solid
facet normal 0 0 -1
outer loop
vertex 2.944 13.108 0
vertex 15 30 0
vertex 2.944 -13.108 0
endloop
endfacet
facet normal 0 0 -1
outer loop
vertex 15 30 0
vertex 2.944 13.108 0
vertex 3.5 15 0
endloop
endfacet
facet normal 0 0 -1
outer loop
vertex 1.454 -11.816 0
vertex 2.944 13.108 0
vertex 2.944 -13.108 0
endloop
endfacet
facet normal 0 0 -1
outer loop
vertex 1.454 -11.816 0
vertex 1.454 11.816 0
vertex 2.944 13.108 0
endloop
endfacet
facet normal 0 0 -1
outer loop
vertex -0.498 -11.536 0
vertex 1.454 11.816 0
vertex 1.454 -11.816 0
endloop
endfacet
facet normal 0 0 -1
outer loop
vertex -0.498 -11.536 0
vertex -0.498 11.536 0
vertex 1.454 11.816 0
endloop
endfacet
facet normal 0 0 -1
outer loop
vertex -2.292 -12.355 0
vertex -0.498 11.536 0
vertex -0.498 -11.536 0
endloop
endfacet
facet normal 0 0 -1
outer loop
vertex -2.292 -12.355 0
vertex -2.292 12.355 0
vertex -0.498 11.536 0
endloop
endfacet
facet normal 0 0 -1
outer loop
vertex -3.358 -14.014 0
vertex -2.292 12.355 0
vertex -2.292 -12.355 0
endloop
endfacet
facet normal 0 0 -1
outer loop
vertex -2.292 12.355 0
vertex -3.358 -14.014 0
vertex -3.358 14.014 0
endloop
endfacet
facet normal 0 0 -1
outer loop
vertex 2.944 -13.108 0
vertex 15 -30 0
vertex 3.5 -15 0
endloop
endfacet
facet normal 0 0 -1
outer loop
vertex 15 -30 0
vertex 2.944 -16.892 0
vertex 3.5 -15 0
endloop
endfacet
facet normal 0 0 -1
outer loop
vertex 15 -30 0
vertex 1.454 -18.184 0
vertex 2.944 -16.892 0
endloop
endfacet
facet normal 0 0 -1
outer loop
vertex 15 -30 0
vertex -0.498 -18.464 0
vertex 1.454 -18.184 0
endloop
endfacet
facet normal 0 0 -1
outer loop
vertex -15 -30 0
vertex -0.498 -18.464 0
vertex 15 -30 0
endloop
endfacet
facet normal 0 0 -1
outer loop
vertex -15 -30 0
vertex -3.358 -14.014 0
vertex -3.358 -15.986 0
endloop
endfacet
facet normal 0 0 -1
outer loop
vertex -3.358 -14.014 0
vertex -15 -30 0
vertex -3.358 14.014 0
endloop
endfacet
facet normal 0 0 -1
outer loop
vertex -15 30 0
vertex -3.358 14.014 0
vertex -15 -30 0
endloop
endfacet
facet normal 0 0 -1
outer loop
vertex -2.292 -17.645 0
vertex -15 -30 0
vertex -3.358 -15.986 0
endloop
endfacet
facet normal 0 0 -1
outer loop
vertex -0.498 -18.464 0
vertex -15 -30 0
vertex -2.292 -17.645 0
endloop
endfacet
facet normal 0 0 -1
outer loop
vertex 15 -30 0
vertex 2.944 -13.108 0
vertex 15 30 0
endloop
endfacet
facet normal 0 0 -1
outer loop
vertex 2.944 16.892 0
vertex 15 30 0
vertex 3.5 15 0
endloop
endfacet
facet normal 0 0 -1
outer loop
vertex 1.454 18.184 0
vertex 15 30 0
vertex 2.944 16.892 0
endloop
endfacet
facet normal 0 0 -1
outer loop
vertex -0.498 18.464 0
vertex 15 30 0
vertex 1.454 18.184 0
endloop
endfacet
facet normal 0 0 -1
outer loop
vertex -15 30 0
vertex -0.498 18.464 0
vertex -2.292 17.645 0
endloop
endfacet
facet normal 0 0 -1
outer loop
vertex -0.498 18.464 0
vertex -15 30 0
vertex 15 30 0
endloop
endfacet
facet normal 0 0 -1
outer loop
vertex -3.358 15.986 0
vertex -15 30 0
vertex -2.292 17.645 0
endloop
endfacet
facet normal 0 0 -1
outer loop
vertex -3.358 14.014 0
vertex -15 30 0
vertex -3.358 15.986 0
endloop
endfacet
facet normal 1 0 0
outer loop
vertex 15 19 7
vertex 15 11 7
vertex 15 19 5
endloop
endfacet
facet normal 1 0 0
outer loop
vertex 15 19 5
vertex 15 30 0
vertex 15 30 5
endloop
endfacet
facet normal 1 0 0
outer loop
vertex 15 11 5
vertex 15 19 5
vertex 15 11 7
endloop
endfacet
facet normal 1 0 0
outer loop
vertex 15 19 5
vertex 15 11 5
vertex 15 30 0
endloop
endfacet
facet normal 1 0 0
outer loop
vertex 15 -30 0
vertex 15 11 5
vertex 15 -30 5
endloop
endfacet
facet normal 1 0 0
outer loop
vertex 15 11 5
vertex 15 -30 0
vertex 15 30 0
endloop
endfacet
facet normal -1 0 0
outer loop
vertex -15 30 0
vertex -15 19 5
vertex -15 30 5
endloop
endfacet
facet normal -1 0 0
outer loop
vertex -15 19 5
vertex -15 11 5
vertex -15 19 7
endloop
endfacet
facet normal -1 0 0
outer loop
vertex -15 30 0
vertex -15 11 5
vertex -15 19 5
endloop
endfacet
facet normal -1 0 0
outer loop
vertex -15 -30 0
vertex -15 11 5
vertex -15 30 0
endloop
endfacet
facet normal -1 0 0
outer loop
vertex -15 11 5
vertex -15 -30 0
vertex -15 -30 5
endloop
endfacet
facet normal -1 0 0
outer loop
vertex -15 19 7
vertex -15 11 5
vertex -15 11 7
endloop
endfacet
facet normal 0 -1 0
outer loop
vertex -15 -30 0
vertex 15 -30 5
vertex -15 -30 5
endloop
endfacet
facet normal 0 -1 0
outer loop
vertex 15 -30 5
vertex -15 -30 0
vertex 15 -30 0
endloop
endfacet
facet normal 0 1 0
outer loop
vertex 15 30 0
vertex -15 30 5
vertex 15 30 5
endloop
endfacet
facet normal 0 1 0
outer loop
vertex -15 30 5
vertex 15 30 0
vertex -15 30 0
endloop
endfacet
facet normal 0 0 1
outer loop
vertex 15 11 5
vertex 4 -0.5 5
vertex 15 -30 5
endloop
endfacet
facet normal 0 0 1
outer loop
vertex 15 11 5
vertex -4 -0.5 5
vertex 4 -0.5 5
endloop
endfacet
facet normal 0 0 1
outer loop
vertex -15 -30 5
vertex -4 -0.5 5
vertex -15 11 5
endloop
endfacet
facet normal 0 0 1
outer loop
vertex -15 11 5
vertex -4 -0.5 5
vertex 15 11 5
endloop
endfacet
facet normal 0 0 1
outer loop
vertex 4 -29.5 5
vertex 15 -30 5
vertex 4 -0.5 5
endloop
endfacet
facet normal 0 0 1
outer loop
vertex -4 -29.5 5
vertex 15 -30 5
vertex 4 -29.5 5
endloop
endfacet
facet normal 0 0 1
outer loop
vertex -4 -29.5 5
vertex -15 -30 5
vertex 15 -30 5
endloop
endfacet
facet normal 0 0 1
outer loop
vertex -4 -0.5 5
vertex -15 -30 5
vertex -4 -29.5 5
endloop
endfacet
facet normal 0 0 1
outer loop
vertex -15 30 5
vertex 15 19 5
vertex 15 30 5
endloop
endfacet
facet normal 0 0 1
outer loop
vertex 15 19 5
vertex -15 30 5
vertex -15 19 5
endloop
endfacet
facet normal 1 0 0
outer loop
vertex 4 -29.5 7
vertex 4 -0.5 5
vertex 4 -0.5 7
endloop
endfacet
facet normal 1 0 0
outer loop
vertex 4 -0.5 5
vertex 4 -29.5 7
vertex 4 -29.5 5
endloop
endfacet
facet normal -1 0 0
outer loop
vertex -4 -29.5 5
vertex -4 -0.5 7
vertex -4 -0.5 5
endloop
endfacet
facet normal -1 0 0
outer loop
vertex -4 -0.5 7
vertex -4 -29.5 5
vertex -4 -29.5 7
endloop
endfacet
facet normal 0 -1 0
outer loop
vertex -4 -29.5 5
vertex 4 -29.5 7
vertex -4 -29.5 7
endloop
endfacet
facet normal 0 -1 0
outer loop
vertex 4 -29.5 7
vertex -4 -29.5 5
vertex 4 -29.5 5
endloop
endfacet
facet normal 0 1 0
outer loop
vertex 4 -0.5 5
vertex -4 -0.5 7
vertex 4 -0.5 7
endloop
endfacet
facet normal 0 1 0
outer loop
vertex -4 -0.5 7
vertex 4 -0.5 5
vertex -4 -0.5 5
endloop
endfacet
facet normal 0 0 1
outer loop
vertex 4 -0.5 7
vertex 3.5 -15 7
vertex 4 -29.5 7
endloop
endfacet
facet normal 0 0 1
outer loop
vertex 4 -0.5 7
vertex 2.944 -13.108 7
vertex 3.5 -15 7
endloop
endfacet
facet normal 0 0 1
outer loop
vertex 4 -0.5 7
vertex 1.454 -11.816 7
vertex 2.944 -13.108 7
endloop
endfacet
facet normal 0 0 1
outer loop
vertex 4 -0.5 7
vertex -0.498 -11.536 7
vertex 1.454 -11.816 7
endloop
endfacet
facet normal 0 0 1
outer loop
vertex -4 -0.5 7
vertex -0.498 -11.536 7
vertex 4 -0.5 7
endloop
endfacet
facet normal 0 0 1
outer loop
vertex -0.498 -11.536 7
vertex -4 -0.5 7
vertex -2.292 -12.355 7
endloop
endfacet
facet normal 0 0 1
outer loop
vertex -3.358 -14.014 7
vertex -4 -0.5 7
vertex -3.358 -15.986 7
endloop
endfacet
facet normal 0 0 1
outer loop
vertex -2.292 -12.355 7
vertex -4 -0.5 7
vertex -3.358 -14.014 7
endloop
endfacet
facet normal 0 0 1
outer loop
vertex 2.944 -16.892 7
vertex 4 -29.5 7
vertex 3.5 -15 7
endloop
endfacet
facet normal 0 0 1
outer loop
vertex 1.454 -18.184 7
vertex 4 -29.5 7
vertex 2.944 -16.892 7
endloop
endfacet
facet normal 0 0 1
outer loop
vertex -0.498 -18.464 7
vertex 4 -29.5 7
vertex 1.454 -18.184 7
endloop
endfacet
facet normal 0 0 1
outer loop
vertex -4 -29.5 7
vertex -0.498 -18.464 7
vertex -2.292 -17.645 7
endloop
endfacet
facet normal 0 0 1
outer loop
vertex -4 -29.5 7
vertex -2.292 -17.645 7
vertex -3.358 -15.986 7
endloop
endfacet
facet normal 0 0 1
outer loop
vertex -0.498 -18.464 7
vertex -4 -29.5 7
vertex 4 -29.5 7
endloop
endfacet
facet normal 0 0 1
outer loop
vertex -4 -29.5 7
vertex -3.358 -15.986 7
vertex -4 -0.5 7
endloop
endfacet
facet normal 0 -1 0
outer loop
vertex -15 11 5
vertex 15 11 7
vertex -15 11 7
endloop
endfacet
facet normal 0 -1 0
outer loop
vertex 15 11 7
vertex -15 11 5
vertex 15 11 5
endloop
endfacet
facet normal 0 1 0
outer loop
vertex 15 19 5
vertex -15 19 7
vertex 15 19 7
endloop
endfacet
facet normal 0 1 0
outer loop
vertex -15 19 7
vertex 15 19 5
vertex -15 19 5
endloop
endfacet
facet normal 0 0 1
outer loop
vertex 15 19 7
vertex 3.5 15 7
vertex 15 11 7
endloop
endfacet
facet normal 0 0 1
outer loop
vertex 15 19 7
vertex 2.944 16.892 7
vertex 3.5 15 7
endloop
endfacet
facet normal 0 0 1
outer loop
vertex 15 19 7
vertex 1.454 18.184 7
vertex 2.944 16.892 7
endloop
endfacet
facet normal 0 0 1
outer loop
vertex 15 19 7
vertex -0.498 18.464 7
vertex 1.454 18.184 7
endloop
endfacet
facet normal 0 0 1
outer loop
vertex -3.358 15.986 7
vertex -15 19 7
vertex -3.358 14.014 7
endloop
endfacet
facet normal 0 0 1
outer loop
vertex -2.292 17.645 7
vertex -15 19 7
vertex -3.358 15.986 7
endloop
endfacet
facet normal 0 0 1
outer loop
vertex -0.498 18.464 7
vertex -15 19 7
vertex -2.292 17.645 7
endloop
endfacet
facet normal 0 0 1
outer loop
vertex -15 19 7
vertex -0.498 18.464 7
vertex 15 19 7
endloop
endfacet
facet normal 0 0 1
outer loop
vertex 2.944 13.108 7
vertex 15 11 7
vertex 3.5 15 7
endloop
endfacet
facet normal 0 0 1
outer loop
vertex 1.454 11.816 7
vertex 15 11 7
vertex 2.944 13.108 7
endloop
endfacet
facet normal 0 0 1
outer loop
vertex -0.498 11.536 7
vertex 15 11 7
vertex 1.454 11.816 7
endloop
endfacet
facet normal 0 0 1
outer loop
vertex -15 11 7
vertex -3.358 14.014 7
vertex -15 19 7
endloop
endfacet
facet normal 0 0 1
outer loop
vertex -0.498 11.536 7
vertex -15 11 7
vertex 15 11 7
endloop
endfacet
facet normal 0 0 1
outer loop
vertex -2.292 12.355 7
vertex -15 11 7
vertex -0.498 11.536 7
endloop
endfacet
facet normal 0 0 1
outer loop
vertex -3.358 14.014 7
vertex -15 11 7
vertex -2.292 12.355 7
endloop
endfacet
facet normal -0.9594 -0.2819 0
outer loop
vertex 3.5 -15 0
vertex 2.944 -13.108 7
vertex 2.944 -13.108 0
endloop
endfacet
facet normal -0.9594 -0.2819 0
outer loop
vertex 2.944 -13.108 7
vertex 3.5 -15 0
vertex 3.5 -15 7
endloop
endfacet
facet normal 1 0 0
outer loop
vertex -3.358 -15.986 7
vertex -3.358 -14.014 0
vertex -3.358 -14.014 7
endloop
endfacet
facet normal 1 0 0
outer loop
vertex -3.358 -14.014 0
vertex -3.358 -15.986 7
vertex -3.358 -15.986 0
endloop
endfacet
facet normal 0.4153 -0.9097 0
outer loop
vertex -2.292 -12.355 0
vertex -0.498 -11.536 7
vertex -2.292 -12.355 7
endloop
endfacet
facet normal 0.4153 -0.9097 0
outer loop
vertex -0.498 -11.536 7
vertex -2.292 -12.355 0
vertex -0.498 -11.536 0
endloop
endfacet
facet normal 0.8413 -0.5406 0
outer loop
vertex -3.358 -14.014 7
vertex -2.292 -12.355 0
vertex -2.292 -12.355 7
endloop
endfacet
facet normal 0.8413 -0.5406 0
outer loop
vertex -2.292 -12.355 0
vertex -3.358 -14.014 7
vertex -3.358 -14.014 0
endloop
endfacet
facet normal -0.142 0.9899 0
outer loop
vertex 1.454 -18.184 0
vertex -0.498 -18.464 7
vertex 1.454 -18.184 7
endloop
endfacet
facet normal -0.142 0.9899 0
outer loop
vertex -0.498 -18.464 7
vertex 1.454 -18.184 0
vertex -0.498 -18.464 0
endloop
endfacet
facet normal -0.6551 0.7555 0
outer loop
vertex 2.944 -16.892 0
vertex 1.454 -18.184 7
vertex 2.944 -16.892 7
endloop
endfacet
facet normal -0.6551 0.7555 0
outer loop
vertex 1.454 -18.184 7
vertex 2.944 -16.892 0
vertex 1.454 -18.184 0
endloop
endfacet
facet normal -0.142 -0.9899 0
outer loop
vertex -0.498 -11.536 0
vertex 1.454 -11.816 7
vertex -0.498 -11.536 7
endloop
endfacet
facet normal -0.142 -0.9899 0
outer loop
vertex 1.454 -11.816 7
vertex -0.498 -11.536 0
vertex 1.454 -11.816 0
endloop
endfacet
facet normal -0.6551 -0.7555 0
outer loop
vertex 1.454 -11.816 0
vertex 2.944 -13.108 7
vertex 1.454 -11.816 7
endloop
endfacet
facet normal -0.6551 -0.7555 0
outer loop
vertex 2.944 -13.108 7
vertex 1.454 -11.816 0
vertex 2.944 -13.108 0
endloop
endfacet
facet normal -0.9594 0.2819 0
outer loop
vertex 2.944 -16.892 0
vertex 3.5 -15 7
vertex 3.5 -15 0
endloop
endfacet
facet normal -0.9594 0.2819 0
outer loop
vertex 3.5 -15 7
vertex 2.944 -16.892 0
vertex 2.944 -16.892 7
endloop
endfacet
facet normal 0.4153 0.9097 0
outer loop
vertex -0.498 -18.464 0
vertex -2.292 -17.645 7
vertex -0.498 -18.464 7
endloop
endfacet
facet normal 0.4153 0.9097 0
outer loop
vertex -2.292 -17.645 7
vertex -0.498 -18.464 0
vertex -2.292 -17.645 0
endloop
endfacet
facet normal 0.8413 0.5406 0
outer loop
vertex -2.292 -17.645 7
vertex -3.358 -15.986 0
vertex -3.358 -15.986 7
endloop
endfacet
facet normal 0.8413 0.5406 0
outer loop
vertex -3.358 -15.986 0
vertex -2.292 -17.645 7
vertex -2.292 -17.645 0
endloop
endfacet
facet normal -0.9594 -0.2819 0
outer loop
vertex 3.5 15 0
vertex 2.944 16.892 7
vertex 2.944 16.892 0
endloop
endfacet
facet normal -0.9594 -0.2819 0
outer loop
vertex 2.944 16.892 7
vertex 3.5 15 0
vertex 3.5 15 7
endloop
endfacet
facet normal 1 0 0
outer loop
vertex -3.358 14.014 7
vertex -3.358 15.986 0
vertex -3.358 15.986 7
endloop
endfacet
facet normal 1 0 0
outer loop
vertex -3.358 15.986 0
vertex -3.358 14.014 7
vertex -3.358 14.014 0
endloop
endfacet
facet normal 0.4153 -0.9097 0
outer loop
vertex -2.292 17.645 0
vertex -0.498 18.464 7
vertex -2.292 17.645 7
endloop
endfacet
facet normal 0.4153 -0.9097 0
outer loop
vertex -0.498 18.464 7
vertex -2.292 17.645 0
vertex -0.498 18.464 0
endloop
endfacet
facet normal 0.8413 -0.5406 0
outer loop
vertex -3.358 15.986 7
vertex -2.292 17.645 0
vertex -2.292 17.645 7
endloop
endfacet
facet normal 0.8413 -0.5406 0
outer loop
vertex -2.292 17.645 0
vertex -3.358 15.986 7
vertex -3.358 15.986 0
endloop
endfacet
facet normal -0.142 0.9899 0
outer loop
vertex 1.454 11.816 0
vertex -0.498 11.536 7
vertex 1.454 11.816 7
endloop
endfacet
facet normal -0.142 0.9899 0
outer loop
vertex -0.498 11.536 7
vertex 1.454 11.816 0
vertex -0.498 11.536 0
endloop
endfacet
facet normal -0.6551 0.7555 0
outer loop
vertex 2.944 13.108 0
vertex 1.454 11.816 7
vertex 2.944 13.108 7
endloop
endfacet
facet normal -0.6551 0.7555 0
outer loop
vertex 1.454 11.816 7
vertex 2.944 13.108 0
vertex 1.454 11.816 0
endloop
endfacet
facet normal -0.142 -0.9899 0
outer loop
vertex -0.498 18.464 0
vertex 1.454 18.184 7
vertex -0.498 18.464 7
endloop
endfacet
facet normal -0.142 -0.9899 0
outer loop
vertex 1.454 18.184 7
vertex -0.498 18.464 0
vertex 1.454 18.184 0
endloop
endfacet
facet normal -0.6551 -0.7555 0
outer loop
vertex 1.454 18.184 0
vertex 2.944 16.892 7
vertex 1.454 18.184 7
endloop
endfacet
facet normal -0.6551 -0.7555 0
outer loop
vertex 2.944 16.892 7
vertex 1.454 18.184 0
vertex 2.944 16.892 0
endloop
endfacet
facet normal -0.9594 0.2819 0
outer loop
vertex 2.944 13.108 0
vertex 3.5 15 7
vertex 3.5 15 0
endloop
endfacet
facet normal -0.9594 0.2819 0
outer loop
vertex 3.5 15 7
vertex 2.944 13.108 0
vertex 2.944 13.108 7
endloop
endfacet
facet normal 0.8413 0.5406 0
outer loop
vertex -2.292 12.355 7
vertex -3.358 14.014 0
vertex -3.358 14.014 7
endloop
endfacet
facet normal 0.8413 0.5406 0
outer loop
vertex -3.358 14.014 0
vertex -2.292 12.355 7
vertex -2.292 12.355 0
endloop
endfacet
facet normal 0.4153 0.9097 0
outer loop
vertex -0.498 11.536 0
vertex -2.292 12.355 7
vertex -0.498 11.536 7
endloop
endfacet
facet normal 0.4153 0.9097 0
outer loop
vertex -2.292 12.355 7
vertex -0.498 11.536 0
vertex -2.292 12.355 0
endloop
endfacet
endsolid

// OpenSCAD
drazka=8;
m6_dira=7;



module spojka(){
    difference(){
        union(){
            linear_extrude(height=5)
                square([30,60],center=true);
            linear_extrude(height=7)
                translate([0,-15])
                    square([drazka,30-1],center=true);
            linear_extrude(height=7)
                translate([0,15])
                    square([30,drazka],center=true);
            
        }
        for(a=[-15:30:15]){
            translate([0,a,-1])
                cylinder(d=m6_dira,h=9);
        }    
    }
}

spojka();
